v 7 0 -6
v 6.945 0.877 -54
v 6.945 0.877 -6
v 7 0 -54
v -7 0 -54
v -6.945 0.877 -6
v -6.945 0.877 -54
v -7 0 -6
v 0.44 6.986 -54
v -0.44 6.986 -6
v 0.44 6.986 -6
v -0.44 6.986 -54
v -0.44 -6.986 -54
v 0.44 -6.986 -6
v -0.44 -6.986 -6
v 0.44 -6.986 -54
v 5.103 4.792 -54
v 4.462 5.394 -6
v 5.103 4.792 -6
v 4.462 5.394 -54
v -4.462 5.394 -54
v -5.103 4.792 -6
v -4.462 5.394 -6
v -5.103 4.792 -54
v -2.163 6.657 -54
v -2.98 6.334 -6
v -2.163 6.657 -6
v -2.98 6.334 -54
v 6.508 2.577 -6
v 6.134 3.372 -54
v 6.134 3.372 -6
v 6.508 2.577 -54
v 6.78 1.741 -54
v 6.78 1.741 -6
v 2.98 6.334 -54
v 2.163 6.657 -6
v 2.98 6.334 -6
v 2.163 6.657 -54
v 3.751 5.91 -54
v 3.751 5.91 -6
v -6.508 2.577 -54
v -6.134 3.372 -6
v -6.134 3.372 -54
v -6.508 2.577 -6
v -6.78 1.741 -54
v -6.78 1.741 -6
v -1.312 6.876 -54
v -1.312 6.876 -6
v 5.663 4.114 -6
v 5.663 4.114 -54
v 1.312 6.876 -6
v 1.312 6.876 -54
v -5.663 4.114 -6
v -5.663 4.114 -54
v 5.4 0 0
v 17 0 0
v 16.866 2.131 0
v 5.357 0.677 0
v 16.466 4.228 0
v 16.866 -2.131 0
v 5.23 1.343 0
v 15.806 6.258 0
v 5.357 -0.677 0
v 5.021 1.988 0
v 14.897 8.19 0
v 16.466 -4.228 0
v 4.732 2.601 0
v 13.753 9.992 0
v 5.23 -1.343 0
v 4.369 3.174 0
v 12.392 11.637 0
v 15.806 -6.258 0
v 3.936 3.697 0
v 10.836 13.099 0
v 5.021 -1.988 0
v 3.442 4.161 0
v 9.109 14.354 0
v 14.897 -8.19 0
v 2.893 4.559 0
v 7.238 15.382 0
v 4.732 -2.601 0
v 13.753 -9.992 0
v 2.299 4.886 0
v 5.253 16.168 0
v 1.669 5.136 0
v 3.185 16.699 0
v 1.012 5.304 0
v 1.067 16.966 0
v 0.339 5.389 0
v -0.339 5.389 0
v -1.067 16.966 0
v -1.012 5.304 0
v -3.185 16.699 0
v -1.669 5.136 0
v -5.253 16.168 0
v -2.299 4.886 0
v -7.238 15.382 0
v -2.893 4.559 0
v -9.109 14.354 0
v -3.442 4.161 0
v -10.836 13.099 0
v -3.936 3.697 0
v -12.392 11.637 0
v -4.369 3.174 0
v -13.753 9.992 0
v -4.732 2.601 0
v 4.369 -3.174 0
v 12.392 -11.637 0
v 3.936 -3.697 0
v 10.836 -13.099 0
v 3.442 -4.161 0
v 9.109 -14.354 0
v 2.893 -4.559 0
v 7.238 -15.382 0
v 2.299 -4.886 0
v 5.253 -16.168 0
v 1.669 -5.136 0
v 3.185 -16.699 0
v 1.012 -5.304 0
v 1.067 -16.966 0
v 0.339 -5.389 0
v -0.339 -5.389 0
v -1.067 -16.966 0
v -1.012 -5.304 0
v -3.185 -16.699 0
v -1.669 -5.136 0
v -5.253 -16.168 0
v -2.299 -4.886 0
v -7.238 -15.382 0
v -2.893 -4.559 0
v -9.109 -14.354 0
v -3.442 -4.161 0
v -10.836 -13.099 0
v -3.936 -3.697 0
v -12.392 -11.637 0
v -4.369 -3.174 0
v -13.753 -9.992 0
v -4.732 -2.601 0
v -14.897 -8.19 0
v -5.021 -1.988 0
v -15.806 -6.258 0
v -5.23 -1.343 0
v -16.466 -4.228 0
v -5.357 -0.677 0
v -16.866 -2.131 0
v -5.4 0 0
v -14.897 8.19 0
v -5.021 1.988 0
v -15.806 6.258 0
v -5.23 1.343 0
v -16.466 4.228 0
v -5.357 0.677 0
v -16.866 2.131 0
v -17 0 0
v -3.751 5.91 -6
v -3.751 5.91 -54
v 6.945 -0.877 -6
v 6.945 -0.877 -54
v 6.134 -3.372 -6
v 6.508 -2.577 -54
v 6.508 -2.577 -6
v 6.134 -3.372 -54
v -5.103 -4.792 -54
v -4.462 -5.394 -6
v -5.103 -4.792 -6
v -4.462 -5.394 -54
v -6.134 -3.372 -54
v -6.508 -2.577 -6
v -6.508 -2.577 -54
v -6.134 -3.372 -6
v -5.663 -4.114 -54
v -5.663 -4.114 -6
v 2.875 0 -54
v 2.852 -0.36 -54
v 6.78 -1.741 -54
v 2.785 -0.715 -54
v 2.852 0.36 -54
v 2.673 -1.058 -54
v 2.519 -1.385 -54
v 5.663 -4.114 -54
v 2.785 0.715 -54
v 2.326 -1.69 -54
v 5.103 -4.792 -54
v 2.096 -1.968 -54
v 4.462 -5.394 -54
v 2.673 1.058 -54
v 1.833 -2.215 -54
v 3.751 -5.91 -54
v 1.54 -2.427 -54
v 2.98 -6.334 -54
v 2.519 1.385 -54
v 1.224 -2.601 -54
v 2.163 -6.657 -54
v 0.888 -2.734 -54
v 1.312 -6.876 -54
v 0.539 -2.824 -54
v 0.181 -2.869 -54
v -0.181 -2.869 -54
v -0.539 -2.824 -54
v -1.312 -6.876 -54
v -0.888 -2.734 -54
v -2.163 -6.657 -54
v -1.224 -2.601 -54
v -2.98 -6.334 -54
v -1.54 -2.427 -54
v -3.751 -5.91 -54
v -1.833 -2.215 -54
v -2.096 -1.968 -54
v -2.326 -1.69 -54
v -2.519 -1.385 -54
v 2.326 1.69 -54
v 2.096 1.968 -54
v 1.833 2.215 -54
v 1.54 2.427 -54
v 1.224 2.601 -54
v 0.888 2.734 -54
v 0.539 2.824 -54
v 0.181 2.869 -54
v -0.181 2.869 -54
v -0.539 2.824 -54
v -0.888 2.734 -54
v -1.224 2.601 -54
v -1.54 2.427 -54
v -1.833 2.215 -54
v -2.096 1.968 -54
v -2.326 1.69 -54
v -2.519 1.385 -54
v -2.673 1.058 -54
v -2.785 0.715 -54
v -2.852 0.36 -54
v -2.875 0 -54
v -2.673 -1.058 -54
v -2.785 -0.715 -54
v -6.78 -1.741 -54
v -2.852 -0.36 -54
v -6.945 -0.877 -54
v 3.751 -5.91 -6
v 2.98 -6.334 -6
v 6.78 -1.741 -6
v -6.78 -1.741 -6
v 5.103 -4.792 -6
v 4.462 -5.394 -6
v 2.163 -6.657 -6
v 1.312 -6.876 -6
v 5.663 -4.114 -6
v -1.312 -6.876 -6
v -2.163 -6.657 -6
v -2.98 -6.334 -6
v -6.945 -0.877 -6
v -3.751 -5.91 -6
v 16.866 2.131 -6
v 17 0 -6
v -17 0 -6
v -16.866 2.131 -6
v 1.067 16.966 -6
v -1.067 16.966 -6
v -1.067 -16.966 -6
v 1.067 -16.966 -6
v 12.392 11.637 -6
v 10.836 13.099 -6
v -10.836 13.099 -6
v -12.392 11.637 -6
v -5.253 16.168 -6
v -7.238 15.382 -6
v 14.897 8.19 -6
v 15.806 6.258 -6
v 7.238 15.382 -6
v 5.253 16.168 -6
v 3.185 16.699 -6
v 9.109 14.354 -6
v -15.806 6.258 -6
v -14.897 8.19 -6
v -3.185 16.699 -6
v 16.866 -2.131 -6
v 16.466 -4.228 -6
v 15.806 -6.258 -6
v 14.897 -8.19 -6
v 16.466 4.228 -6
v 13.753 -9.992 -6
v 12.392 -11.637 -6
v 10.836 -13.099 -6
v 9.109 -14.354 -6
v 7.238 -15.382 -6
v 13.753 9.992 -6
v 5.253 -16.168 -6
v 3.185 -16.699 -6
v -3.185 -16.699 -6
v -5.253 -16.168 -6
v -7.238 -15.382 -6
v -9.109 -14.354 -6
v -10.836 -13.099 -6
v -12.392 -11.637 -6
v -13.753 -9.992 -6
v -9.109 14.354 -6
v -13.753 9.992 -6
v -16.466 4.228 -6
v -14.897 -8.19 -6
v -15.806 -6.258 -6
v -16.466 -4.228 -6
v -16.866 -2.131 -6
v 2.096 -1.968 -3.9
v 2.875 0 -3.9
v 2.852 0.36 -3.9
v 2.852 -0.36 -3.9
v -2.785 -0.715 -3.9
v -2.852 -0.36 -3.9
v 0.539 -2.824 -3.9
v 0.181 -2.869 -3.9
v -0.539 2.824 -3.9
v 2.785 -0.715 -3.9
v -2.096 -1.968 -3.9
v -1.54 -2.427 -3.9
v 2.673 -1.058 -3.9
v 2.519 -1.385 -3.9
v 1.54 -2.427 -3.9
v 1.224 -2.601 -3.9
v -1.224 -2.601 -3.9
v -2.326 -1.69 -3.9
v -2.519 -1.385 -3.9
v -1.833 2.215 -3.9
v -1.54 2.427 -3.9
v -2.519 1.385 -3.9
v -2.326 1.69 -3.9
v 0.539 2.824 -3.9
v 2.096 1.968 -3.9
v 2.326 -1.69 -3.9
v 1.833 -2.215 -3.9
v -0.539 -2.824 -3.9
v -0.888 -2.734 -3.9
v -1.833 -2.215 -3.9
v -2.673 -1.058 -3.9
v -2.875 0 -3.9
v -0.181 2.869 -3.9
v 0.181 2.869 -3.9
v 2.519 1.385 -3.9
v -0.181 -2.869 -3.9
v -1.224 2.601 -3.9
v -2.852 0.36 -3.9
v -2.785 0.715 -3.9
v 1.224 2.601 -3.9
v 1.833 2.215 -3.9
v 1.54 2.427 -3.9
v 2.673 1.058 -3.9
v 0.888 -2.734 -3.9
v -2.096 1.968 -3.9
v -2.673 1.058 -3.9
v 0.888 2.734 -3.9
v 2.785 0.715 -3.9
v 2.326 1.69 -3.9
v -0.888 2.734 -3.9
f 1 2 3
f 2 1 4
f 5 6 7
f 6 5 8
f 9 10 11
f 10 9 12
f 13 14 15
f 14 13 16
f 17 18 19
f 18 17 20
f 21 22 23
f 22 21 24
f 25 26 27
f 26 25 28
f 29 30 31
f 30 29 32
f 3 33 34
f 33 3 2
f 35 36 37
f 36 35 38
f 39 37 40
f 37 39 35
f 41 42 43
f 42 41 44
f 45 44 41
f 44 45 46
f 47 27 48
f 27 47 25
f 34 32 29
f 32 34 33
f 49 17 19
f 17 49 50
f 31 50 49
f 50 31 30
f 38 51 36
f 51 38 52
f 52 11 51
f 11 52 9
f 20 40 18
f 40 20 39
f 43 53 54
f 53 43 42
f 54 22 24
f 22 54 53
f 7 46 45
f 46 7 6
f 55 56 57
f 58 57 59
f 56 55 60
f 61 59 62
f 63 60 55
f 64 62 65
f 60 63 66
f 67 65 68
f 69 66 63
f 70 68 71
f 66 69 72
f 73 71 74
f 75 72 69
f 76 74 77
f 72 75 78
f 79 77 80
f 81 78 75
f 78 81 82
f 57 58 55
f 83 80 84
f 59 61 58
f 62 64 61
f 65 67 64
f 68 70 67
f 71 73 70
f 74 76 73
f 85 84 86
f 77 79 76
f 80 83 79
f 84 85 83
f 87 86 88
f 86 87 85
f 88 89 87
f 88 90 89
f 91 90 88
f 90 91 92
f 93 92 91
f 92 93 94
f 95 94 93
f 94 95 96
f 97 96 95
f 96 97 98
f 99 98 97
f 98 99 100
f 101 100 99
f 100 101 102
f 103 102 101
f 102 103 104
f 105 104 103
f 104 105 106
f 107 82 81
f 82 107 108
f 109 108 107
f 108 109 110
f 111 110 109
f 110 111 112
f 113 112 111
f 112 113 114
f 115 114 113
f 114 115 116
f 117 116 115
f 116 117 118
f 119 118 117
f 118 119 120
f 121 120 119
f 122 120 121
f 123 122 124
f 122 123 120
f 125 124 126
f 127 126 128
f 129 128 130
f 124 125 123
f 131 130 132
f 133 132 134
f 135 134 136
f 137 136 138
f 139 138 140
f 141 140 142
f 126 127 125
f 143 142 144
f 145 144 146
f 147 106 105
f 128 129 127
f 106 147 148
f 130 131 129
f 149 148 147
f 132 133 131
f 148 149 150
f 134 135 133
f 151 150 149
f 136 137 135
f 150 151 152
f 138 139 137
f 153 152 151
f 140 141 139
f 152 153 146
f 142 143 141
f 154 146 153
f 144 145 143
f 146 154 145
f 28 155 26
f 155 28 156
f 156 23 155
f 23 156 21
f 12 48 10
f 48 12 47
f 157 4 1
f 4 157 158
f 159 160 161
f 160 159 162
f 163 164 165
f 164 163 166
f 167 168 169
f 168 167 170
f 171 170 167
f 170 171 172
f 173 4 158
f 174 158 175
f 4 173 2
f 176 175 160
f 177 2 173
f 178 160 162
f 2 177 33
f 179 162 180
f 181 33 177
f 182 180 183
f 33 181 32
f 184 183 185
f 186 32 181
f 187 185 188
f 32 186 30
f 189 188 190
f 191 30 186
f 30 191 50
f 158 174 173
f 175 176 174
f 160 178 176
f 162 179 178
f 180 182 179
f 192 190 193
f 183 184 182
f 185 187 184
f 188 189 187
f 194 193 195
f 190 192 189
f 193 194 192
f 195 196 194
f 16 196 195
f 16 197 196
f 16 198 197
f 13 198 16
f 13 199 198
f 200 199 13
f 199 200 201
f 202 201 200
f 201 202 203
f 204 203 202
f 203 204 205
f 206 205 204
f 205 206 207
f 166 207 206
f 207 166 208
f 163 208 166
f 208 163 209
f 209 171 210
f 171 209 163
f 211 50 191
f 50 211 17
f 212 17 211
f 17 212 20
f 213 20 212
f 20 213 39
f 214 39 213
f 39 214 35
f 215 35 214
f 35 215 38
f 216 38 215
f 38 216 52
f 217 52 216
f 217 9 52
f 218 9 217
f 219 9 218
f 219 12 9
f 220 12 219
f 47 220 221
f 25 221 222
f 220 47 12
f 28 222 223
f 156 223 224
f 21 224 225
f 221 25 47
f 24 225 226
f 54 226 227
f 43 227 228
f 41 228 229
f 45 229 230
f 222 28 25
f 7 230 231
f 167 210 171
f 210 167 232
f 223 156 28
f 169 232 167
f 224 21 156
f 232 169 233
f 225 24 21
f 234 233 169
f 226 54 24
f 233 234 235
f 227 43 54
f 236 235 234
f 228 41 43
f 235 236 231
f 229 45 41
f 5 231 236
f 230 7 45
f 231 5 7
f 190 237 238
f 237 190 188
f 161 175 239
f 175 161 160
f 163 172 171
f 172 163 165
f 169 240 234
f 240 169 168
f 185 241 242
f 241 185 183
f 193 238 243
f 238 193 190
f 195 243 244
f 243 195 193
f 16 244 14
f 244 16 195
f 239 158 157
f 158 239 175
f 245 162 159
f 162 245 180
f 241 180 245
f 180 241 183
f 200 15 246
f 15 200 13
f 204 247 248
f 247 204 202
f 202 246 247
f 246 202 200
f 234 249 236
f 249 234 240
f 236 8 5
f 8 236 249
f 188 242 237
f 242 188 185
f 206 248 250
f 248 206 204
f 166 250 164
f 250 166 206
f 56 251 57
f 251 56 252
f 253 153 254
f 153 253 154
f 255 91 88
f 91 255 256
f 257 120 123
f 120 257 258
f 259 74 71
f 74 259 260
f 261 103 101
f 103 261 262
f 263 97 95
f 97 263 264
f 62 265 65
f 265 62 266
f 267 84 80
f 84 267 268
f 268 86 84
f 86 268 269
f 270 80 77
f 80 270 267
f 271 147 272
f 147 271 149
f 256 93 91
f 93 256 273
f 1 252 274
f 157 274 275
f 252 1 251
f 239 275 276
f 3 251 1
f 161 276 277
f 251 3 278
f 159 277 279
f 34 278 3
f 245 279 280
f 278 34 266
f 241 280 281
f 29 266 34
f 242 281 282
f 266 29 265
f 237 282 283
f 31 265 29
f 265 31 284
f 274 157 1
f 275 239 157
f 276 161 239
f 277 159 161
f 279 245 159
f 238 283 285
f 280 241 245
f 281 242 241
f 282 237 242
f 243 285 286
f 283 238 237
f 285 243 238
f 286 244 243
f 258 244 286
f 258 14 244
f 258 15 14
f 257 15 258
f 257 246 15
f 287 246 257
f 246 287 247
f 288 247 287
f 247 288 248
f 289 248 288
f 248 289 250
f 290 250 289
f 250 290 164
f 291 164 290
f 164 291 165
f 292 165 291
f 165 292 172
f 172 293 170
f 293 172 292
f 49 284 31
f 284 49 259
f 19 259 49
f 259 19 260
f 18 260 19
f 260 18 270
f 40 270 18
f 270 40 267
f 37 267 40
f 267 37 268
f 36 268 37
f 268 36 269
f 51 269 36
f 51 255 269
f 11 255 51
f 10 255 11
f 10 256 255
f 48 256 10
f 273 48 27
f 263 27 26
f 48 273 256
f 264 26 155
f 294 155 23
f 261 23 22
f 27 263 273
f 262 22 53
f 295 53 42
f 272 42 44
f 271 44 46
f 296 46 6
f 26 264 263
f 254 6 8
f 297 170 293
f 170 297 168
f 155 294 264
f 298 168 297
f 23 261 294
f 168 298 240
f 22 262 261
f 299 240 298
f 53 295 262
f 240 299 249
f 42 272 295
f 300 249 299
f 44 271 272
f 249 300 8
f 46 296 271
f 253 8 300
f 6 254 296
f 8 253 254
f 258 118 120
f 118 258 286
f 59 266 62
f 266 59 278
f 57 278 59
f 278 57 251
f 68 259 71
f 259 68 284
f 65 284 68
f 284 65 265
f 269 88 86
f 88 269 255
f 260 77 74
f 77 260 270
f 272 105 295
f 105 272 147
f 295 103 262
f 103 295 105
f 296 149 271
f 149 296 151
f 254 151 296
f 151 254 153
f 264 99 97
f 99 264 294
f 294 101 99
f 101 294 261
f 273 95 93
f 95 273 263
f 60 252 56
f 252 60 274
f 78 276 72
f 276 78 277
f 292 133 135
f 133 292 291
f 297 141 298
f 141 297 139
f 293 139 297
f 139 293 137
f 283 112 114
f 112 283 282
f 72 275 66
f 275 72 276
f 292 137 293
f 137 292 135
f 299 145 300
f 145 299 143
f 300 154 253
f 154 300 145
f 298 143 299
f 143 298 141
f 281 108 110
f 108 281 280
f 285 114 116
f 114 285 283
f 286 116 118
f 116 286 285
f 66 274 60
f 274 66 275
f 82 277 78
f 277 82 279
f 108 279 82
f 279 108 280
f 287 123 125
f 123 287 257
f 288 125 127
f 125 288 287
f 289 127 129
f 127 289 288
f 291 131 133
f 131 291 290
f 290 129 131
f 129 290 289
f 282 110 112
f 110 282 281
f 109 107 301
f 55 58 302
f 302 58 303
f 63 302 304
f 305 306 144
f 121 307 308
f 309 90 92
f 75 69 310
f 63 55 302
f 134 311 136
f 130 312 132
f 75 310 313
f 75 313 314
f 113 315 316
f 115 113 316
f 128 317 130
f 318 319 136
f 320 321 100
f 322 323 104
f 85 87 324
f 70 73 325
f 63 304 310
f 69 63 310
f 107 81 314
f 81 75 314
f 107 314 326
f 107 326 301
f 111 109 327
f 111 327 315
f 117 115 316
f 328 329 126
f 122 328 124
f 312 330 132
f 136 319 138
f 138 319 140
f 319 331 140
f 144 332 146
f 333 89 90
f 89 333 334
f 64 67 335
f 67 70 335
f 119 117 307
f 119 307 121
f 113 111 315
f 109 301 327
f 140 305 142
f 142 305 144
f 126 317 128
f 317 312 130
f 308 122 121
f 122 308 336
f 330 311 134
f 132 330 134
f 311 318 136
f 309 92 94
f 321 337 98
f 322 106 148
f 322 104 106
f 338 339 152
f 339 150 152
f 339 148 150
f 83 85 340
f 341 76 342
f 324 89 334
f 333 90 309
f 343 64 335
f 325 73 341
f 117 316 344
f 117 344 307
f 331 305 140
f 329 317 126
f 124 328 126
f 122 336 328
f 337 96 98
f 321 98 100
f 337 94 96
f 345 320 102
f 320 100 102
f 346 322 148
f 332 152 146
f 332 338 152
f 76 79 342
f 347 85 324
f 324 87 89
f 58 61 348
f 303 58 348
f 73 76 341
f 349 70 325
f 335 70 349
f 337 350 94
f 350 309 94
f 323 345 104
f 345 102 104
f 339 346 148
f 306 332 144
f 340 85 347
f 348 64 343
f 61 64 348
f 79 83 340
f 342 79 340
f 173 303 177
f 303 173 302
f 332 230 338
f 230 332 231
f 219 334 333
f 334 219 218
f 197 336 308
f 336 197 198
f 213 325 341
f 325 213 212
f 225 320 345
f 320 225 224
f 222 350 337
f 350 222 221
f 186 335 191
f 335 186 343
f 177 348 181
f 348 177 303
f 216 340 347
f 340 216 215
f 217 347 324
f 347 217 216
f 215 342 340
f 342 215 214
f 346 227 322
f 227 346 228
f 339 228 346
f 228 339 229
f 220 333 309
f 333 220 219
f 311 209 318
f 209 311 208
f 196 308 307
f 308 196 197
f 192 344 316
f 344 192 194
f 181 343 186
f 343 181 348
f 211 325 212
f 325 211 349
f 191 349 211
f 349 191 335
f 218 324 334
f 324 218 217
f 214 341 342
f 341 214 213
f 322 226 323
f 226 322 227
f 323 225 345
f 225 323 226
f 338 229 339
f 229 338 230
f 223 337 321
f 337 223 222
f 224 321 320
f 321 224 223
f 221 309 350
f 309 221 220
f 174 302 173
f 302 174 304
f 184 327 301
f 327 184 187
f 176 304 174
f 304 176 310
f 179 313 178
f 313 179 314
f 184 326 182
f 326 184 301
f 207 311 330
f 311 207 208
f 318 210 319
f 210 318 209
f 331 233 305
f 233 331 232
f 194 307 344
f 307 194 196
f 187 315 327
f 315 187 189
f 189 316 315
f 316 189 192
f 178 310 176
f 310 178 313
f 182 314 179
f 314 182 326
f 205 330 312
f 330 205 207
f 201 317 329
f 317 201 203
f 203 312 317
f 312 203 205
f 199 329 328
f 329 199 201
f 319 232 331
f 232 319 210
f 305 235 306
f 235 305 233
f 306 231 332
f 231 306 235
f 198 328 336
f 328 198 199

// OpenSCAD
$fn = 50;


difference() {
	union() {
		translate(v = [0, 0, -54.0000000000]) {
			cylinder(h = 54, r = 7.0000000000);
		}
		translate(v = [0, 0, -6.0000000000]) {
			cylinder(h = 6, r = 17.0000000000);
		}
	}
	union() {
		translate(v = [0, 0, 0]) {
			rotate(a = [0, 0, 0]) {
				difference() {
					union() {
						#translate(v = [0, 0, -54.0000000000]) {
							cylinder(h = 54, r = 2.6000000000);
						}
						#translate(v = [0, 0, -3.9000000000]) {
							cylinder(h = 3.9000000000, r1 = 2.8750000000, r2 = 5.4000000000);
						}
						#translate(v = [0, 0, -54.0000000000]) {
							cylinder(h = 54, r = 2.8750000000);
						}
						#translate(v = [0, 0, -54.0000000000]) {
							cylinder(h = 54, r = 2.6000000000);
						}
					}
					union();
				}
			}
		}
	}
}
